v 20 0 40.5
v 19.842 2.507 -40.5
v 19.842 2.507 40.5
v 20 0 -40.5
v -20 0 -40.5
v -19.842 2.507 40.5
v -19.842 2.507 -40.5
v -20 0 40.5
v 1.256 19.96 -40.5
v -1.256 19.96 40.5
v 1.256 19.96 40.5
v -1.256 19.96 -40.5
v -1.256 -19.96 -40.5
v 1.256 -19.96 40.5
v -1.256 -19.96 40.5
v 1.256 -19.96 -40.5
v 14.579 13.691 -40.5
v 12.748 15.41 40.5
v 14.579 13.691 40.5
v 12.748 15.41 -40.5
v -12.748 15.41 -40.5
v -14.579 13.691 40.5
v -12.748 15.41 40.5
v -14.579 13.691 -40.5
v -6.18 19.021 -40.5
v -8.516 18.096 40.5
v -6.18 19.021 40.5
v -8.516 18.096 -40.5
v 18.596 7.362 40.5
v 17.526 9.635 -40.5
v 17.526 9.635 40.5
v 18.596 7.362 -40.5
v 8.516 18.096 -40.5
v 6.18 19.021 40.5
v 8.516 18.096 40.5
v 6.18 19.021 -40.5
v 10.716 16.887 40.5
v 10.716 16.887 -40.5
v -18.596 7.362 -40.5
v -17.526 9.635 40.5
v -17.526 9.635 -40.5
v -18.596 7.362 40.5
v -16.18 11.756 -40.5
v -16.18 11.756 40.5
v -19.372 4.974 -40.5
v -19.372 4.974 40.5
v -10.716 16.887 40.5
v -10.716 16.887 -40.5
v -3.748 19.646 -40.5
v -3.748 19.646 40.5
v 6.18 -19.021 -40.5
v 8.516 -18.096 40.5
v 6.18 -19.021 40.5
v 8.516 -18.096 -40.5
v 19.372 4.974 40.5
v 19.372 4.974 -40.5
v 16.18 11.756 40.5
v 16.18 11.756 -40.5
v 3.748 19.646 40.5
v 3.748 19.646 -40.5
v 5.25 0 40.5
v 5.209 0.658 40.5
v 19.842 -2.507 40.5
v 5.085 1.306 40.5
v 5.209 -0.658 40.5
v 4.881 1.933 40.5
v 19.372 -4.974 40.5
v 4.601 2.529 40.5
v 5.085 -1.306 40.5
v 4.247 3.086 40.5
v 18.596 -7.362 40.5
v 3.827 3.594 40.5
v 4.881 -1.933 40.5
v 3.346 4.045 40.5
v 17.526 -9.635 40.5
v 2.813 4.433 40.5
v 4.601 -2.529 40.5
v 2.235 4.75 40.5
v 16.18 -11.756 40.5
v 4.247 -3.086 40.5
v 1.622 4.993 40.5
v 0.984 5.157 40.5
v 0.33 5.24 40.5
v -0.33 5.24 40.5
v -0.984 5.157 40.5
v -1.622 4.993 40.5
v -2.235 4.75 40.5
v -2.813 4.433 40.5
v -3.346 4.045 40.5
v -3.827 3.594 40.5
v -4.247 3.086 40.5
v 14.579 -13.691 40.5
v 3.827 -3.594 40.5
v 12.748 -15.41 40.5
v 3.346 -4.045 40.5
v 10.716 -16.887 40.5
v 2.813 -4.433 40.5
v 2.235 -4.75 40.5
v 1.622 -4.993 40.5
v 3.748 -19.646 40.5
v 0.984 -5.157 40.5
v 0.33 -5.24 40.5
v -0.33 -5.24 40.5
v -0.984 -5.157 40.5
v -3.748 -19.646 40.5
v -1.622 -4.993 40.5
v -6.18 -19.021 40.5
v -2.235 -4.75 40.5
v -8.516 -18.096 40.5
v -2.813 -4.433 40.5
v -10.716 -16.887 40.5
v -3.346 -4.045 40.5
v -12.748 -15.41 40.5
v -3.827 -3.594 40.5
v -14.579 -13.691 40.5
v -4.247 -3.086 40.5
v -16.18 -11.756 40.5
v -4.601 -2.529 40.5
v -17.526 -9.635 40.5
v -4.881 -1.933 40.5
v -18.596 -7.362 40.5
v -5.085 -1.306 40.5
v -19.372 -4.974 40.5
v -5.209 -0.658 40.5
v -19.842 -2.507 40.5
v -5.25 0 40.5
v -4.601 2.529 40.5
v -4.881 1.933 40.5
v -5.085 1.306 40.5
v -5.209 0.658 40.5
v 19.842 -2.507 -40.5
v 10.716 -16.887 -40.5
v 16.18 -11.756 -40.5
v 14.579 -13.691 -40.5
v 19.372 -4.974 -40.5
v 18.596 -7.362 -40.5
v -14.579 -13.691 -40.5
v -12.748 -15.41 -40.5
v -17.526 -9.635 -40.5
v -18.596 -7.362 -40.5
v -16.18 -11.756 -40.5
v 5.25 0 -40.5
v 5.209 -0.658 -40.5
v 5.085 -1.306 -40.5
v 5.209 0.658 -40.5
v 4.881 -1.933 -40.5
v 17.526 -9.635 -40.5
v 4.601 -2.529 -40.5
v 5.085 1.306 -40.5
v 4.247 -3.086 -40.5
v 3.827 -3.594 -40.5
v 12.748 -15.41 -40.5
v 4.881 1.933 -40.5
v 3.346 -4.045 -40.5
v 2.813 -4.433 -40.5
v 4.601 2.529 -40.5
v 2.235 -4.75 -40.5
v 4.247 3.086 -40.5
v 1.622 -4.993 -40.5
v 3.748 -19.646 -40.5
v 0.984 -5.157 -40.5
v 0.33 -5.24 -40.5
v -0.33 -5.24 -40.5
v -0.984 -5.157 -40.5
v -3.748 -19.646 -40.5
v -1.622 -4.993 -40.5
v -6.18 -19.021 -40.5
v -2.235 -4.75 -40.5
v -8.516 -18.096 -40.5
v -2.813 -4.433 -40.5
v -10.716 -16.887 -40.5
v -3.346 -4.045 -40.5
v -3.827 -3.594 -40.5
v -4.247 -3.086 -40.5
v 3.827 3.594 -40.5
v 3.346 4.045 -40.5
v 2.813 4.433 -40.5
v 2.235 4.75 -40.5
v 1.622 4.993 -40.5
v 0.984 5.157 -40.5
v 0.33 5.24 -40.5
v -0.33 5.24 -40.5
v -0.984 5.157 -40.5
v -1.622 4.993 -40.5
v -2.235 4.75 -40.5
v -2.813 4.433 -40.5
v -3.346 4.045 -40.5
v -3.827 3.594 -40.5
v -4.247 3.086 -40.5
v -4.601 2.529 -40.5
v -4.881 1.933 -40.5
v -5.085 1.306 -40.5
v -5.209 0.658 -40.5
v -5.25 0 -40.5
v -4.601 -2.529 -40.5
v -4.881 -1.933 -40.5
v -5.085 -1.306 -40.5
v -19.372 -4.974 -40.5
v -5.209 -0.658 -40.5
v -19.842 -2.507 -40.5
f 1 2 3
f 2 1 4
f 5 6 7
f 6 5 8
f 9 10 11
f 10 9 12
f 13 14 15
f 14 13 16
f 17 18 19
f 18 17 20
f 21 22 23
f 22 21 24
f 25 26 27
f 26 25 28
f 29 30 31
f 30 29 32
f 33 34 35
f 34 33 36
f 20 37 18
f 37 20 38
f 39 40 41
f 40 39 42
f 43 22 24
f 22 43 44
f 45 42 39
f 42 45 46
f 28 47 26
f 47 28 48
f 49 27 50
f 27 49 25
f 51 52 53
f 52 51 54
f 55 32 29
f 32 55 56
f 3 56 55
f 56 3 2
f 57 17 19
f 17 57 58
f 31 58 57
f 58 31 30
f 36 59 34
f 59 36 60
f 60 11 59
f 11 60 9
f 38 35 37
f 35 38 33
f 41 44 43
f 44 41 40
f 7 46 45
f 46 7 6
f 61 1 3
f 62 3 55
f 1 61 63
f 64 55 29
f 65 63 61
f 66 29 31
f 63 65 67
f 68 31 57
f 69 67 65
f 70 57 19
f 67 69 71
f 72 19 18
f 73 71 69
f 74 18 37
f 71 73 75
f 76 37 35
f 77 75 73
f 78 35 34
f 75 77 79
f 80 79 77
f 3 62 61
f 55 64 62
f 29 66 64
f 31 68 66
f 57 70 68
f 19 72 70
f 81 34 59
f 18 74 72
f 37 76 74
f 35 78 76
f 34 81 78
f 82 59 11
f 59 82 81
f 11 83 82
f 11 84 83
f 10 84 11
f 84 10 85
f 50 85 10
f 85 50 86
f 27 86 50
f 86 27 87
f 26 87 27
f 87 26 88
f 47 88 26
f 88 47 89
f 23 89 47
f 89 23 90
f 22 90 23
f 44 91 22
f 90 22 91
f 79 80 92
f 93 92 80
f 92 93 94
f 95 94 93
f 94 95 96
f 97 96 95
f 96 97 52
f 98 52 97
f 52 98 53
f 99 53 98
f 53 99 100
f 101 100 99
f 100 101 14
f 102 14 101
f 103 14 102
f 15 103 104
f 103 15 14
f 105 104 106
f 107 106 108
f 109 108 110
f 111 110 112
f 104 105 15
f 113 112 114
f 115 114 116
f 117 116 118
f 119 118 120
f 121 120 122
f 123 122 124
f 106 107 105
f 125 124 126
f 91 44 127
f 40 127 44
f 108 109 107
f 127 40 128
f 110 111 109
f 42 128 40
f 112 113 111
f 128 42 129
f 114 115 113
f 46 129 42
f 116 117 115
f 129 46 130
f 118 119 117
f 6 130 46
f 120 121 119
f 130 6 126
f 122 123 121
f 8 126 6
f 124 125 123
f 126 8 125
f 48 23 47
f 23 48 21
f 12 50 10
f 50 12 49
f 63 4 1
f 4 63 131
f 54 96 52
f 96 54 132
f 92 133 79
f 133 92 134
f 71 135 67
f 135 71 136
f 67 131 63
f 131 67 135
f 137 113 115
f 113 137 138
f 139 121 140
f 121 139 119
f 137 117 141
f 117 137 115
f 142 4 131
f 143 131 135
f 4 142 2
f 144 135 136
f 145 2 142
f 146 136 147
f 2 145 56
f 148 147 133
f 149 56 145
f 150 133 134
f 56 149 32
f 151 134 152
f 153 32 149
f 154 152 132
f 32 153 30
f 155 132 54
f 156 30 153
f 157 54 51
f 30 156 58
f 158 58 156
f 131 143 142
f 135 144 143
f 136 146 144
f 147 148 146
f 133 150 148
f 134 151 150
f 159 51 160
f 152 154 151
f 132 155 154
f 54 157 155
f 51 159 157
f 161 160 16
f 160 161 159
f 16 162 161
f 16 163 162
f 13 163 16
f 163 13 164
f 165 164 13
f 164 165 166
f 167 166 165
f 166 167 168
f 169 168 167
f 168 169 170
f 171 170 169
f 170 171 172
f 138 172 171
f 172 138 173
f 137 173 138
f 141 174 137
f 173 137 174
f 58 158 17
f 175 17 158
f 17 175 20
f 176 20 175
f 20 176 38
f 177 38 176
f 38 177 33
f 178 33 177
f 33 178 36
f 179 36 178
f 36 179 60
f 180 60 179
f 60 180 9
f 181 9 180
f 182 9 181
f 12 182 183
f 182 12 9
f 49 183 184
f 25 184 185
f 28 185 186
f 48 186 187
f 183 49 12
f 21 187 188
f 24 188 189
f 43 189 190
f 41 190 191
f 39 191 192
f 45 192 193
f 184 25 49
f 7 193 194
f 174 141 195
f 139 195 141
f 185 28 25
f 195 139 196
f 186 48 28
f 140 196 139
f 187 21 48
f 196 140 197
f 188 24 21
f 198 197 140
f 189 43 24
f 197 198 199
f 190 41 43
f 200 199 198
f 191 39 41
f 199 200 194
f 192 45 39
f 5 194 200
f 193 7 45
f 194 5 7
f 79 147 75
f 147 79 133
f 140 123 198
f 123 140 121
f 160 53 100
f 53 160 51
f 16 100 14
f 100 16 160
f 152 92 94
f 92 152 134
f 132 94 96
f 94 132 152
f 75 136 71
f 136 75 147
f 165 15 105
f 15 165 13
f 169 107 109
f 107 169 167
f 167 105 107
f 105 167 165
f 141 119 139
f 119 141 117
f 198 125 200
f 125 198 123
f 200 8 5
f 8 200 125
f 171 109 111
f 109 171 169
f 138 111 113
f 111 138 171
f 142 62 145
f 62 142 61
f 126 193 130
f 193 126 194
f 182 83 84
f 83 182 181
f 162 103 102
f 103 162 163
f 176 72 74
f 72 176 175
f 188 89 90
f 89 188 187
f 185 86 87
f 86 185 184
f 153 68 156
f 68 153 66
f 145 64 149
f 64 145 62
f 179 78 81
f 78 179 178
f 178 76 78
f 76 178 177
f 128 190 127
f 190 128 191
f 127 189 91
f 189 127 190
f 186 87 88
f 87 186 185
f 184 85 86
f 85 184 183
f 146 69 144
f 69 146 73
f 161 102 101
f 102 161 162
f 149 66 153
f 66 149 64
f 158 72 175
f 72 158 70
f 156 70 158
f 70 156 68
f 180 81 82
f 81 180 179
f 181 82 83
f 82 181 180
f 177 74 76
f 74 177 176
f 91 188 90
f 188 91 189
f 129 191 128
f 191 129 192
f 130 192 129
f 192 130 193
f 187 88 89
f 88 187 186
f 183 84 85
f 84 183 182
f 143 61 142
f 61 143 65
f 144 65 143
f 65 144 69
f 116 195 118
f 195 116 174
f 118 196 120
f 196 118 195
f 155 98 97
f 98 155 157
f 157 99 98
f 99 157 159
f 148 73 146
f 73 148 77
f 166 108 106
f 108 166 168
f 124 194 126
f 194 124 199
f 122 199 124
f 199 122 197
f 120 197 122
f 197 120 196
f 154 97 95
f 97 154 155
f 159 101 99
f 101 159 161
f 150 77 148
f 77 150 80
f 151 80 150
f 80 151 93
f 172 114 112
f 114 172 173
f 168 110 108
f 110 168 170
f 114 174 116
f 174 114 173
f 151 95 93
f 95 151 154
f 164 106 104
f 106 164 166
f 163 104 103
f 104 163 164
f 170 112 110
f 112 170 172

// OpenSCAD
$fn = 50;


difference() {
	union() {
		translate(v = [0, 0, -40.5000000000]) {
			cylinder(h = 81, r = 20.0000000000);
		}
	}
	union() {
		translate(v = [0, 0, -100.0000000000]) {
			cylinder(h = 200, r = 5.2500000000);
		}
	}
}
